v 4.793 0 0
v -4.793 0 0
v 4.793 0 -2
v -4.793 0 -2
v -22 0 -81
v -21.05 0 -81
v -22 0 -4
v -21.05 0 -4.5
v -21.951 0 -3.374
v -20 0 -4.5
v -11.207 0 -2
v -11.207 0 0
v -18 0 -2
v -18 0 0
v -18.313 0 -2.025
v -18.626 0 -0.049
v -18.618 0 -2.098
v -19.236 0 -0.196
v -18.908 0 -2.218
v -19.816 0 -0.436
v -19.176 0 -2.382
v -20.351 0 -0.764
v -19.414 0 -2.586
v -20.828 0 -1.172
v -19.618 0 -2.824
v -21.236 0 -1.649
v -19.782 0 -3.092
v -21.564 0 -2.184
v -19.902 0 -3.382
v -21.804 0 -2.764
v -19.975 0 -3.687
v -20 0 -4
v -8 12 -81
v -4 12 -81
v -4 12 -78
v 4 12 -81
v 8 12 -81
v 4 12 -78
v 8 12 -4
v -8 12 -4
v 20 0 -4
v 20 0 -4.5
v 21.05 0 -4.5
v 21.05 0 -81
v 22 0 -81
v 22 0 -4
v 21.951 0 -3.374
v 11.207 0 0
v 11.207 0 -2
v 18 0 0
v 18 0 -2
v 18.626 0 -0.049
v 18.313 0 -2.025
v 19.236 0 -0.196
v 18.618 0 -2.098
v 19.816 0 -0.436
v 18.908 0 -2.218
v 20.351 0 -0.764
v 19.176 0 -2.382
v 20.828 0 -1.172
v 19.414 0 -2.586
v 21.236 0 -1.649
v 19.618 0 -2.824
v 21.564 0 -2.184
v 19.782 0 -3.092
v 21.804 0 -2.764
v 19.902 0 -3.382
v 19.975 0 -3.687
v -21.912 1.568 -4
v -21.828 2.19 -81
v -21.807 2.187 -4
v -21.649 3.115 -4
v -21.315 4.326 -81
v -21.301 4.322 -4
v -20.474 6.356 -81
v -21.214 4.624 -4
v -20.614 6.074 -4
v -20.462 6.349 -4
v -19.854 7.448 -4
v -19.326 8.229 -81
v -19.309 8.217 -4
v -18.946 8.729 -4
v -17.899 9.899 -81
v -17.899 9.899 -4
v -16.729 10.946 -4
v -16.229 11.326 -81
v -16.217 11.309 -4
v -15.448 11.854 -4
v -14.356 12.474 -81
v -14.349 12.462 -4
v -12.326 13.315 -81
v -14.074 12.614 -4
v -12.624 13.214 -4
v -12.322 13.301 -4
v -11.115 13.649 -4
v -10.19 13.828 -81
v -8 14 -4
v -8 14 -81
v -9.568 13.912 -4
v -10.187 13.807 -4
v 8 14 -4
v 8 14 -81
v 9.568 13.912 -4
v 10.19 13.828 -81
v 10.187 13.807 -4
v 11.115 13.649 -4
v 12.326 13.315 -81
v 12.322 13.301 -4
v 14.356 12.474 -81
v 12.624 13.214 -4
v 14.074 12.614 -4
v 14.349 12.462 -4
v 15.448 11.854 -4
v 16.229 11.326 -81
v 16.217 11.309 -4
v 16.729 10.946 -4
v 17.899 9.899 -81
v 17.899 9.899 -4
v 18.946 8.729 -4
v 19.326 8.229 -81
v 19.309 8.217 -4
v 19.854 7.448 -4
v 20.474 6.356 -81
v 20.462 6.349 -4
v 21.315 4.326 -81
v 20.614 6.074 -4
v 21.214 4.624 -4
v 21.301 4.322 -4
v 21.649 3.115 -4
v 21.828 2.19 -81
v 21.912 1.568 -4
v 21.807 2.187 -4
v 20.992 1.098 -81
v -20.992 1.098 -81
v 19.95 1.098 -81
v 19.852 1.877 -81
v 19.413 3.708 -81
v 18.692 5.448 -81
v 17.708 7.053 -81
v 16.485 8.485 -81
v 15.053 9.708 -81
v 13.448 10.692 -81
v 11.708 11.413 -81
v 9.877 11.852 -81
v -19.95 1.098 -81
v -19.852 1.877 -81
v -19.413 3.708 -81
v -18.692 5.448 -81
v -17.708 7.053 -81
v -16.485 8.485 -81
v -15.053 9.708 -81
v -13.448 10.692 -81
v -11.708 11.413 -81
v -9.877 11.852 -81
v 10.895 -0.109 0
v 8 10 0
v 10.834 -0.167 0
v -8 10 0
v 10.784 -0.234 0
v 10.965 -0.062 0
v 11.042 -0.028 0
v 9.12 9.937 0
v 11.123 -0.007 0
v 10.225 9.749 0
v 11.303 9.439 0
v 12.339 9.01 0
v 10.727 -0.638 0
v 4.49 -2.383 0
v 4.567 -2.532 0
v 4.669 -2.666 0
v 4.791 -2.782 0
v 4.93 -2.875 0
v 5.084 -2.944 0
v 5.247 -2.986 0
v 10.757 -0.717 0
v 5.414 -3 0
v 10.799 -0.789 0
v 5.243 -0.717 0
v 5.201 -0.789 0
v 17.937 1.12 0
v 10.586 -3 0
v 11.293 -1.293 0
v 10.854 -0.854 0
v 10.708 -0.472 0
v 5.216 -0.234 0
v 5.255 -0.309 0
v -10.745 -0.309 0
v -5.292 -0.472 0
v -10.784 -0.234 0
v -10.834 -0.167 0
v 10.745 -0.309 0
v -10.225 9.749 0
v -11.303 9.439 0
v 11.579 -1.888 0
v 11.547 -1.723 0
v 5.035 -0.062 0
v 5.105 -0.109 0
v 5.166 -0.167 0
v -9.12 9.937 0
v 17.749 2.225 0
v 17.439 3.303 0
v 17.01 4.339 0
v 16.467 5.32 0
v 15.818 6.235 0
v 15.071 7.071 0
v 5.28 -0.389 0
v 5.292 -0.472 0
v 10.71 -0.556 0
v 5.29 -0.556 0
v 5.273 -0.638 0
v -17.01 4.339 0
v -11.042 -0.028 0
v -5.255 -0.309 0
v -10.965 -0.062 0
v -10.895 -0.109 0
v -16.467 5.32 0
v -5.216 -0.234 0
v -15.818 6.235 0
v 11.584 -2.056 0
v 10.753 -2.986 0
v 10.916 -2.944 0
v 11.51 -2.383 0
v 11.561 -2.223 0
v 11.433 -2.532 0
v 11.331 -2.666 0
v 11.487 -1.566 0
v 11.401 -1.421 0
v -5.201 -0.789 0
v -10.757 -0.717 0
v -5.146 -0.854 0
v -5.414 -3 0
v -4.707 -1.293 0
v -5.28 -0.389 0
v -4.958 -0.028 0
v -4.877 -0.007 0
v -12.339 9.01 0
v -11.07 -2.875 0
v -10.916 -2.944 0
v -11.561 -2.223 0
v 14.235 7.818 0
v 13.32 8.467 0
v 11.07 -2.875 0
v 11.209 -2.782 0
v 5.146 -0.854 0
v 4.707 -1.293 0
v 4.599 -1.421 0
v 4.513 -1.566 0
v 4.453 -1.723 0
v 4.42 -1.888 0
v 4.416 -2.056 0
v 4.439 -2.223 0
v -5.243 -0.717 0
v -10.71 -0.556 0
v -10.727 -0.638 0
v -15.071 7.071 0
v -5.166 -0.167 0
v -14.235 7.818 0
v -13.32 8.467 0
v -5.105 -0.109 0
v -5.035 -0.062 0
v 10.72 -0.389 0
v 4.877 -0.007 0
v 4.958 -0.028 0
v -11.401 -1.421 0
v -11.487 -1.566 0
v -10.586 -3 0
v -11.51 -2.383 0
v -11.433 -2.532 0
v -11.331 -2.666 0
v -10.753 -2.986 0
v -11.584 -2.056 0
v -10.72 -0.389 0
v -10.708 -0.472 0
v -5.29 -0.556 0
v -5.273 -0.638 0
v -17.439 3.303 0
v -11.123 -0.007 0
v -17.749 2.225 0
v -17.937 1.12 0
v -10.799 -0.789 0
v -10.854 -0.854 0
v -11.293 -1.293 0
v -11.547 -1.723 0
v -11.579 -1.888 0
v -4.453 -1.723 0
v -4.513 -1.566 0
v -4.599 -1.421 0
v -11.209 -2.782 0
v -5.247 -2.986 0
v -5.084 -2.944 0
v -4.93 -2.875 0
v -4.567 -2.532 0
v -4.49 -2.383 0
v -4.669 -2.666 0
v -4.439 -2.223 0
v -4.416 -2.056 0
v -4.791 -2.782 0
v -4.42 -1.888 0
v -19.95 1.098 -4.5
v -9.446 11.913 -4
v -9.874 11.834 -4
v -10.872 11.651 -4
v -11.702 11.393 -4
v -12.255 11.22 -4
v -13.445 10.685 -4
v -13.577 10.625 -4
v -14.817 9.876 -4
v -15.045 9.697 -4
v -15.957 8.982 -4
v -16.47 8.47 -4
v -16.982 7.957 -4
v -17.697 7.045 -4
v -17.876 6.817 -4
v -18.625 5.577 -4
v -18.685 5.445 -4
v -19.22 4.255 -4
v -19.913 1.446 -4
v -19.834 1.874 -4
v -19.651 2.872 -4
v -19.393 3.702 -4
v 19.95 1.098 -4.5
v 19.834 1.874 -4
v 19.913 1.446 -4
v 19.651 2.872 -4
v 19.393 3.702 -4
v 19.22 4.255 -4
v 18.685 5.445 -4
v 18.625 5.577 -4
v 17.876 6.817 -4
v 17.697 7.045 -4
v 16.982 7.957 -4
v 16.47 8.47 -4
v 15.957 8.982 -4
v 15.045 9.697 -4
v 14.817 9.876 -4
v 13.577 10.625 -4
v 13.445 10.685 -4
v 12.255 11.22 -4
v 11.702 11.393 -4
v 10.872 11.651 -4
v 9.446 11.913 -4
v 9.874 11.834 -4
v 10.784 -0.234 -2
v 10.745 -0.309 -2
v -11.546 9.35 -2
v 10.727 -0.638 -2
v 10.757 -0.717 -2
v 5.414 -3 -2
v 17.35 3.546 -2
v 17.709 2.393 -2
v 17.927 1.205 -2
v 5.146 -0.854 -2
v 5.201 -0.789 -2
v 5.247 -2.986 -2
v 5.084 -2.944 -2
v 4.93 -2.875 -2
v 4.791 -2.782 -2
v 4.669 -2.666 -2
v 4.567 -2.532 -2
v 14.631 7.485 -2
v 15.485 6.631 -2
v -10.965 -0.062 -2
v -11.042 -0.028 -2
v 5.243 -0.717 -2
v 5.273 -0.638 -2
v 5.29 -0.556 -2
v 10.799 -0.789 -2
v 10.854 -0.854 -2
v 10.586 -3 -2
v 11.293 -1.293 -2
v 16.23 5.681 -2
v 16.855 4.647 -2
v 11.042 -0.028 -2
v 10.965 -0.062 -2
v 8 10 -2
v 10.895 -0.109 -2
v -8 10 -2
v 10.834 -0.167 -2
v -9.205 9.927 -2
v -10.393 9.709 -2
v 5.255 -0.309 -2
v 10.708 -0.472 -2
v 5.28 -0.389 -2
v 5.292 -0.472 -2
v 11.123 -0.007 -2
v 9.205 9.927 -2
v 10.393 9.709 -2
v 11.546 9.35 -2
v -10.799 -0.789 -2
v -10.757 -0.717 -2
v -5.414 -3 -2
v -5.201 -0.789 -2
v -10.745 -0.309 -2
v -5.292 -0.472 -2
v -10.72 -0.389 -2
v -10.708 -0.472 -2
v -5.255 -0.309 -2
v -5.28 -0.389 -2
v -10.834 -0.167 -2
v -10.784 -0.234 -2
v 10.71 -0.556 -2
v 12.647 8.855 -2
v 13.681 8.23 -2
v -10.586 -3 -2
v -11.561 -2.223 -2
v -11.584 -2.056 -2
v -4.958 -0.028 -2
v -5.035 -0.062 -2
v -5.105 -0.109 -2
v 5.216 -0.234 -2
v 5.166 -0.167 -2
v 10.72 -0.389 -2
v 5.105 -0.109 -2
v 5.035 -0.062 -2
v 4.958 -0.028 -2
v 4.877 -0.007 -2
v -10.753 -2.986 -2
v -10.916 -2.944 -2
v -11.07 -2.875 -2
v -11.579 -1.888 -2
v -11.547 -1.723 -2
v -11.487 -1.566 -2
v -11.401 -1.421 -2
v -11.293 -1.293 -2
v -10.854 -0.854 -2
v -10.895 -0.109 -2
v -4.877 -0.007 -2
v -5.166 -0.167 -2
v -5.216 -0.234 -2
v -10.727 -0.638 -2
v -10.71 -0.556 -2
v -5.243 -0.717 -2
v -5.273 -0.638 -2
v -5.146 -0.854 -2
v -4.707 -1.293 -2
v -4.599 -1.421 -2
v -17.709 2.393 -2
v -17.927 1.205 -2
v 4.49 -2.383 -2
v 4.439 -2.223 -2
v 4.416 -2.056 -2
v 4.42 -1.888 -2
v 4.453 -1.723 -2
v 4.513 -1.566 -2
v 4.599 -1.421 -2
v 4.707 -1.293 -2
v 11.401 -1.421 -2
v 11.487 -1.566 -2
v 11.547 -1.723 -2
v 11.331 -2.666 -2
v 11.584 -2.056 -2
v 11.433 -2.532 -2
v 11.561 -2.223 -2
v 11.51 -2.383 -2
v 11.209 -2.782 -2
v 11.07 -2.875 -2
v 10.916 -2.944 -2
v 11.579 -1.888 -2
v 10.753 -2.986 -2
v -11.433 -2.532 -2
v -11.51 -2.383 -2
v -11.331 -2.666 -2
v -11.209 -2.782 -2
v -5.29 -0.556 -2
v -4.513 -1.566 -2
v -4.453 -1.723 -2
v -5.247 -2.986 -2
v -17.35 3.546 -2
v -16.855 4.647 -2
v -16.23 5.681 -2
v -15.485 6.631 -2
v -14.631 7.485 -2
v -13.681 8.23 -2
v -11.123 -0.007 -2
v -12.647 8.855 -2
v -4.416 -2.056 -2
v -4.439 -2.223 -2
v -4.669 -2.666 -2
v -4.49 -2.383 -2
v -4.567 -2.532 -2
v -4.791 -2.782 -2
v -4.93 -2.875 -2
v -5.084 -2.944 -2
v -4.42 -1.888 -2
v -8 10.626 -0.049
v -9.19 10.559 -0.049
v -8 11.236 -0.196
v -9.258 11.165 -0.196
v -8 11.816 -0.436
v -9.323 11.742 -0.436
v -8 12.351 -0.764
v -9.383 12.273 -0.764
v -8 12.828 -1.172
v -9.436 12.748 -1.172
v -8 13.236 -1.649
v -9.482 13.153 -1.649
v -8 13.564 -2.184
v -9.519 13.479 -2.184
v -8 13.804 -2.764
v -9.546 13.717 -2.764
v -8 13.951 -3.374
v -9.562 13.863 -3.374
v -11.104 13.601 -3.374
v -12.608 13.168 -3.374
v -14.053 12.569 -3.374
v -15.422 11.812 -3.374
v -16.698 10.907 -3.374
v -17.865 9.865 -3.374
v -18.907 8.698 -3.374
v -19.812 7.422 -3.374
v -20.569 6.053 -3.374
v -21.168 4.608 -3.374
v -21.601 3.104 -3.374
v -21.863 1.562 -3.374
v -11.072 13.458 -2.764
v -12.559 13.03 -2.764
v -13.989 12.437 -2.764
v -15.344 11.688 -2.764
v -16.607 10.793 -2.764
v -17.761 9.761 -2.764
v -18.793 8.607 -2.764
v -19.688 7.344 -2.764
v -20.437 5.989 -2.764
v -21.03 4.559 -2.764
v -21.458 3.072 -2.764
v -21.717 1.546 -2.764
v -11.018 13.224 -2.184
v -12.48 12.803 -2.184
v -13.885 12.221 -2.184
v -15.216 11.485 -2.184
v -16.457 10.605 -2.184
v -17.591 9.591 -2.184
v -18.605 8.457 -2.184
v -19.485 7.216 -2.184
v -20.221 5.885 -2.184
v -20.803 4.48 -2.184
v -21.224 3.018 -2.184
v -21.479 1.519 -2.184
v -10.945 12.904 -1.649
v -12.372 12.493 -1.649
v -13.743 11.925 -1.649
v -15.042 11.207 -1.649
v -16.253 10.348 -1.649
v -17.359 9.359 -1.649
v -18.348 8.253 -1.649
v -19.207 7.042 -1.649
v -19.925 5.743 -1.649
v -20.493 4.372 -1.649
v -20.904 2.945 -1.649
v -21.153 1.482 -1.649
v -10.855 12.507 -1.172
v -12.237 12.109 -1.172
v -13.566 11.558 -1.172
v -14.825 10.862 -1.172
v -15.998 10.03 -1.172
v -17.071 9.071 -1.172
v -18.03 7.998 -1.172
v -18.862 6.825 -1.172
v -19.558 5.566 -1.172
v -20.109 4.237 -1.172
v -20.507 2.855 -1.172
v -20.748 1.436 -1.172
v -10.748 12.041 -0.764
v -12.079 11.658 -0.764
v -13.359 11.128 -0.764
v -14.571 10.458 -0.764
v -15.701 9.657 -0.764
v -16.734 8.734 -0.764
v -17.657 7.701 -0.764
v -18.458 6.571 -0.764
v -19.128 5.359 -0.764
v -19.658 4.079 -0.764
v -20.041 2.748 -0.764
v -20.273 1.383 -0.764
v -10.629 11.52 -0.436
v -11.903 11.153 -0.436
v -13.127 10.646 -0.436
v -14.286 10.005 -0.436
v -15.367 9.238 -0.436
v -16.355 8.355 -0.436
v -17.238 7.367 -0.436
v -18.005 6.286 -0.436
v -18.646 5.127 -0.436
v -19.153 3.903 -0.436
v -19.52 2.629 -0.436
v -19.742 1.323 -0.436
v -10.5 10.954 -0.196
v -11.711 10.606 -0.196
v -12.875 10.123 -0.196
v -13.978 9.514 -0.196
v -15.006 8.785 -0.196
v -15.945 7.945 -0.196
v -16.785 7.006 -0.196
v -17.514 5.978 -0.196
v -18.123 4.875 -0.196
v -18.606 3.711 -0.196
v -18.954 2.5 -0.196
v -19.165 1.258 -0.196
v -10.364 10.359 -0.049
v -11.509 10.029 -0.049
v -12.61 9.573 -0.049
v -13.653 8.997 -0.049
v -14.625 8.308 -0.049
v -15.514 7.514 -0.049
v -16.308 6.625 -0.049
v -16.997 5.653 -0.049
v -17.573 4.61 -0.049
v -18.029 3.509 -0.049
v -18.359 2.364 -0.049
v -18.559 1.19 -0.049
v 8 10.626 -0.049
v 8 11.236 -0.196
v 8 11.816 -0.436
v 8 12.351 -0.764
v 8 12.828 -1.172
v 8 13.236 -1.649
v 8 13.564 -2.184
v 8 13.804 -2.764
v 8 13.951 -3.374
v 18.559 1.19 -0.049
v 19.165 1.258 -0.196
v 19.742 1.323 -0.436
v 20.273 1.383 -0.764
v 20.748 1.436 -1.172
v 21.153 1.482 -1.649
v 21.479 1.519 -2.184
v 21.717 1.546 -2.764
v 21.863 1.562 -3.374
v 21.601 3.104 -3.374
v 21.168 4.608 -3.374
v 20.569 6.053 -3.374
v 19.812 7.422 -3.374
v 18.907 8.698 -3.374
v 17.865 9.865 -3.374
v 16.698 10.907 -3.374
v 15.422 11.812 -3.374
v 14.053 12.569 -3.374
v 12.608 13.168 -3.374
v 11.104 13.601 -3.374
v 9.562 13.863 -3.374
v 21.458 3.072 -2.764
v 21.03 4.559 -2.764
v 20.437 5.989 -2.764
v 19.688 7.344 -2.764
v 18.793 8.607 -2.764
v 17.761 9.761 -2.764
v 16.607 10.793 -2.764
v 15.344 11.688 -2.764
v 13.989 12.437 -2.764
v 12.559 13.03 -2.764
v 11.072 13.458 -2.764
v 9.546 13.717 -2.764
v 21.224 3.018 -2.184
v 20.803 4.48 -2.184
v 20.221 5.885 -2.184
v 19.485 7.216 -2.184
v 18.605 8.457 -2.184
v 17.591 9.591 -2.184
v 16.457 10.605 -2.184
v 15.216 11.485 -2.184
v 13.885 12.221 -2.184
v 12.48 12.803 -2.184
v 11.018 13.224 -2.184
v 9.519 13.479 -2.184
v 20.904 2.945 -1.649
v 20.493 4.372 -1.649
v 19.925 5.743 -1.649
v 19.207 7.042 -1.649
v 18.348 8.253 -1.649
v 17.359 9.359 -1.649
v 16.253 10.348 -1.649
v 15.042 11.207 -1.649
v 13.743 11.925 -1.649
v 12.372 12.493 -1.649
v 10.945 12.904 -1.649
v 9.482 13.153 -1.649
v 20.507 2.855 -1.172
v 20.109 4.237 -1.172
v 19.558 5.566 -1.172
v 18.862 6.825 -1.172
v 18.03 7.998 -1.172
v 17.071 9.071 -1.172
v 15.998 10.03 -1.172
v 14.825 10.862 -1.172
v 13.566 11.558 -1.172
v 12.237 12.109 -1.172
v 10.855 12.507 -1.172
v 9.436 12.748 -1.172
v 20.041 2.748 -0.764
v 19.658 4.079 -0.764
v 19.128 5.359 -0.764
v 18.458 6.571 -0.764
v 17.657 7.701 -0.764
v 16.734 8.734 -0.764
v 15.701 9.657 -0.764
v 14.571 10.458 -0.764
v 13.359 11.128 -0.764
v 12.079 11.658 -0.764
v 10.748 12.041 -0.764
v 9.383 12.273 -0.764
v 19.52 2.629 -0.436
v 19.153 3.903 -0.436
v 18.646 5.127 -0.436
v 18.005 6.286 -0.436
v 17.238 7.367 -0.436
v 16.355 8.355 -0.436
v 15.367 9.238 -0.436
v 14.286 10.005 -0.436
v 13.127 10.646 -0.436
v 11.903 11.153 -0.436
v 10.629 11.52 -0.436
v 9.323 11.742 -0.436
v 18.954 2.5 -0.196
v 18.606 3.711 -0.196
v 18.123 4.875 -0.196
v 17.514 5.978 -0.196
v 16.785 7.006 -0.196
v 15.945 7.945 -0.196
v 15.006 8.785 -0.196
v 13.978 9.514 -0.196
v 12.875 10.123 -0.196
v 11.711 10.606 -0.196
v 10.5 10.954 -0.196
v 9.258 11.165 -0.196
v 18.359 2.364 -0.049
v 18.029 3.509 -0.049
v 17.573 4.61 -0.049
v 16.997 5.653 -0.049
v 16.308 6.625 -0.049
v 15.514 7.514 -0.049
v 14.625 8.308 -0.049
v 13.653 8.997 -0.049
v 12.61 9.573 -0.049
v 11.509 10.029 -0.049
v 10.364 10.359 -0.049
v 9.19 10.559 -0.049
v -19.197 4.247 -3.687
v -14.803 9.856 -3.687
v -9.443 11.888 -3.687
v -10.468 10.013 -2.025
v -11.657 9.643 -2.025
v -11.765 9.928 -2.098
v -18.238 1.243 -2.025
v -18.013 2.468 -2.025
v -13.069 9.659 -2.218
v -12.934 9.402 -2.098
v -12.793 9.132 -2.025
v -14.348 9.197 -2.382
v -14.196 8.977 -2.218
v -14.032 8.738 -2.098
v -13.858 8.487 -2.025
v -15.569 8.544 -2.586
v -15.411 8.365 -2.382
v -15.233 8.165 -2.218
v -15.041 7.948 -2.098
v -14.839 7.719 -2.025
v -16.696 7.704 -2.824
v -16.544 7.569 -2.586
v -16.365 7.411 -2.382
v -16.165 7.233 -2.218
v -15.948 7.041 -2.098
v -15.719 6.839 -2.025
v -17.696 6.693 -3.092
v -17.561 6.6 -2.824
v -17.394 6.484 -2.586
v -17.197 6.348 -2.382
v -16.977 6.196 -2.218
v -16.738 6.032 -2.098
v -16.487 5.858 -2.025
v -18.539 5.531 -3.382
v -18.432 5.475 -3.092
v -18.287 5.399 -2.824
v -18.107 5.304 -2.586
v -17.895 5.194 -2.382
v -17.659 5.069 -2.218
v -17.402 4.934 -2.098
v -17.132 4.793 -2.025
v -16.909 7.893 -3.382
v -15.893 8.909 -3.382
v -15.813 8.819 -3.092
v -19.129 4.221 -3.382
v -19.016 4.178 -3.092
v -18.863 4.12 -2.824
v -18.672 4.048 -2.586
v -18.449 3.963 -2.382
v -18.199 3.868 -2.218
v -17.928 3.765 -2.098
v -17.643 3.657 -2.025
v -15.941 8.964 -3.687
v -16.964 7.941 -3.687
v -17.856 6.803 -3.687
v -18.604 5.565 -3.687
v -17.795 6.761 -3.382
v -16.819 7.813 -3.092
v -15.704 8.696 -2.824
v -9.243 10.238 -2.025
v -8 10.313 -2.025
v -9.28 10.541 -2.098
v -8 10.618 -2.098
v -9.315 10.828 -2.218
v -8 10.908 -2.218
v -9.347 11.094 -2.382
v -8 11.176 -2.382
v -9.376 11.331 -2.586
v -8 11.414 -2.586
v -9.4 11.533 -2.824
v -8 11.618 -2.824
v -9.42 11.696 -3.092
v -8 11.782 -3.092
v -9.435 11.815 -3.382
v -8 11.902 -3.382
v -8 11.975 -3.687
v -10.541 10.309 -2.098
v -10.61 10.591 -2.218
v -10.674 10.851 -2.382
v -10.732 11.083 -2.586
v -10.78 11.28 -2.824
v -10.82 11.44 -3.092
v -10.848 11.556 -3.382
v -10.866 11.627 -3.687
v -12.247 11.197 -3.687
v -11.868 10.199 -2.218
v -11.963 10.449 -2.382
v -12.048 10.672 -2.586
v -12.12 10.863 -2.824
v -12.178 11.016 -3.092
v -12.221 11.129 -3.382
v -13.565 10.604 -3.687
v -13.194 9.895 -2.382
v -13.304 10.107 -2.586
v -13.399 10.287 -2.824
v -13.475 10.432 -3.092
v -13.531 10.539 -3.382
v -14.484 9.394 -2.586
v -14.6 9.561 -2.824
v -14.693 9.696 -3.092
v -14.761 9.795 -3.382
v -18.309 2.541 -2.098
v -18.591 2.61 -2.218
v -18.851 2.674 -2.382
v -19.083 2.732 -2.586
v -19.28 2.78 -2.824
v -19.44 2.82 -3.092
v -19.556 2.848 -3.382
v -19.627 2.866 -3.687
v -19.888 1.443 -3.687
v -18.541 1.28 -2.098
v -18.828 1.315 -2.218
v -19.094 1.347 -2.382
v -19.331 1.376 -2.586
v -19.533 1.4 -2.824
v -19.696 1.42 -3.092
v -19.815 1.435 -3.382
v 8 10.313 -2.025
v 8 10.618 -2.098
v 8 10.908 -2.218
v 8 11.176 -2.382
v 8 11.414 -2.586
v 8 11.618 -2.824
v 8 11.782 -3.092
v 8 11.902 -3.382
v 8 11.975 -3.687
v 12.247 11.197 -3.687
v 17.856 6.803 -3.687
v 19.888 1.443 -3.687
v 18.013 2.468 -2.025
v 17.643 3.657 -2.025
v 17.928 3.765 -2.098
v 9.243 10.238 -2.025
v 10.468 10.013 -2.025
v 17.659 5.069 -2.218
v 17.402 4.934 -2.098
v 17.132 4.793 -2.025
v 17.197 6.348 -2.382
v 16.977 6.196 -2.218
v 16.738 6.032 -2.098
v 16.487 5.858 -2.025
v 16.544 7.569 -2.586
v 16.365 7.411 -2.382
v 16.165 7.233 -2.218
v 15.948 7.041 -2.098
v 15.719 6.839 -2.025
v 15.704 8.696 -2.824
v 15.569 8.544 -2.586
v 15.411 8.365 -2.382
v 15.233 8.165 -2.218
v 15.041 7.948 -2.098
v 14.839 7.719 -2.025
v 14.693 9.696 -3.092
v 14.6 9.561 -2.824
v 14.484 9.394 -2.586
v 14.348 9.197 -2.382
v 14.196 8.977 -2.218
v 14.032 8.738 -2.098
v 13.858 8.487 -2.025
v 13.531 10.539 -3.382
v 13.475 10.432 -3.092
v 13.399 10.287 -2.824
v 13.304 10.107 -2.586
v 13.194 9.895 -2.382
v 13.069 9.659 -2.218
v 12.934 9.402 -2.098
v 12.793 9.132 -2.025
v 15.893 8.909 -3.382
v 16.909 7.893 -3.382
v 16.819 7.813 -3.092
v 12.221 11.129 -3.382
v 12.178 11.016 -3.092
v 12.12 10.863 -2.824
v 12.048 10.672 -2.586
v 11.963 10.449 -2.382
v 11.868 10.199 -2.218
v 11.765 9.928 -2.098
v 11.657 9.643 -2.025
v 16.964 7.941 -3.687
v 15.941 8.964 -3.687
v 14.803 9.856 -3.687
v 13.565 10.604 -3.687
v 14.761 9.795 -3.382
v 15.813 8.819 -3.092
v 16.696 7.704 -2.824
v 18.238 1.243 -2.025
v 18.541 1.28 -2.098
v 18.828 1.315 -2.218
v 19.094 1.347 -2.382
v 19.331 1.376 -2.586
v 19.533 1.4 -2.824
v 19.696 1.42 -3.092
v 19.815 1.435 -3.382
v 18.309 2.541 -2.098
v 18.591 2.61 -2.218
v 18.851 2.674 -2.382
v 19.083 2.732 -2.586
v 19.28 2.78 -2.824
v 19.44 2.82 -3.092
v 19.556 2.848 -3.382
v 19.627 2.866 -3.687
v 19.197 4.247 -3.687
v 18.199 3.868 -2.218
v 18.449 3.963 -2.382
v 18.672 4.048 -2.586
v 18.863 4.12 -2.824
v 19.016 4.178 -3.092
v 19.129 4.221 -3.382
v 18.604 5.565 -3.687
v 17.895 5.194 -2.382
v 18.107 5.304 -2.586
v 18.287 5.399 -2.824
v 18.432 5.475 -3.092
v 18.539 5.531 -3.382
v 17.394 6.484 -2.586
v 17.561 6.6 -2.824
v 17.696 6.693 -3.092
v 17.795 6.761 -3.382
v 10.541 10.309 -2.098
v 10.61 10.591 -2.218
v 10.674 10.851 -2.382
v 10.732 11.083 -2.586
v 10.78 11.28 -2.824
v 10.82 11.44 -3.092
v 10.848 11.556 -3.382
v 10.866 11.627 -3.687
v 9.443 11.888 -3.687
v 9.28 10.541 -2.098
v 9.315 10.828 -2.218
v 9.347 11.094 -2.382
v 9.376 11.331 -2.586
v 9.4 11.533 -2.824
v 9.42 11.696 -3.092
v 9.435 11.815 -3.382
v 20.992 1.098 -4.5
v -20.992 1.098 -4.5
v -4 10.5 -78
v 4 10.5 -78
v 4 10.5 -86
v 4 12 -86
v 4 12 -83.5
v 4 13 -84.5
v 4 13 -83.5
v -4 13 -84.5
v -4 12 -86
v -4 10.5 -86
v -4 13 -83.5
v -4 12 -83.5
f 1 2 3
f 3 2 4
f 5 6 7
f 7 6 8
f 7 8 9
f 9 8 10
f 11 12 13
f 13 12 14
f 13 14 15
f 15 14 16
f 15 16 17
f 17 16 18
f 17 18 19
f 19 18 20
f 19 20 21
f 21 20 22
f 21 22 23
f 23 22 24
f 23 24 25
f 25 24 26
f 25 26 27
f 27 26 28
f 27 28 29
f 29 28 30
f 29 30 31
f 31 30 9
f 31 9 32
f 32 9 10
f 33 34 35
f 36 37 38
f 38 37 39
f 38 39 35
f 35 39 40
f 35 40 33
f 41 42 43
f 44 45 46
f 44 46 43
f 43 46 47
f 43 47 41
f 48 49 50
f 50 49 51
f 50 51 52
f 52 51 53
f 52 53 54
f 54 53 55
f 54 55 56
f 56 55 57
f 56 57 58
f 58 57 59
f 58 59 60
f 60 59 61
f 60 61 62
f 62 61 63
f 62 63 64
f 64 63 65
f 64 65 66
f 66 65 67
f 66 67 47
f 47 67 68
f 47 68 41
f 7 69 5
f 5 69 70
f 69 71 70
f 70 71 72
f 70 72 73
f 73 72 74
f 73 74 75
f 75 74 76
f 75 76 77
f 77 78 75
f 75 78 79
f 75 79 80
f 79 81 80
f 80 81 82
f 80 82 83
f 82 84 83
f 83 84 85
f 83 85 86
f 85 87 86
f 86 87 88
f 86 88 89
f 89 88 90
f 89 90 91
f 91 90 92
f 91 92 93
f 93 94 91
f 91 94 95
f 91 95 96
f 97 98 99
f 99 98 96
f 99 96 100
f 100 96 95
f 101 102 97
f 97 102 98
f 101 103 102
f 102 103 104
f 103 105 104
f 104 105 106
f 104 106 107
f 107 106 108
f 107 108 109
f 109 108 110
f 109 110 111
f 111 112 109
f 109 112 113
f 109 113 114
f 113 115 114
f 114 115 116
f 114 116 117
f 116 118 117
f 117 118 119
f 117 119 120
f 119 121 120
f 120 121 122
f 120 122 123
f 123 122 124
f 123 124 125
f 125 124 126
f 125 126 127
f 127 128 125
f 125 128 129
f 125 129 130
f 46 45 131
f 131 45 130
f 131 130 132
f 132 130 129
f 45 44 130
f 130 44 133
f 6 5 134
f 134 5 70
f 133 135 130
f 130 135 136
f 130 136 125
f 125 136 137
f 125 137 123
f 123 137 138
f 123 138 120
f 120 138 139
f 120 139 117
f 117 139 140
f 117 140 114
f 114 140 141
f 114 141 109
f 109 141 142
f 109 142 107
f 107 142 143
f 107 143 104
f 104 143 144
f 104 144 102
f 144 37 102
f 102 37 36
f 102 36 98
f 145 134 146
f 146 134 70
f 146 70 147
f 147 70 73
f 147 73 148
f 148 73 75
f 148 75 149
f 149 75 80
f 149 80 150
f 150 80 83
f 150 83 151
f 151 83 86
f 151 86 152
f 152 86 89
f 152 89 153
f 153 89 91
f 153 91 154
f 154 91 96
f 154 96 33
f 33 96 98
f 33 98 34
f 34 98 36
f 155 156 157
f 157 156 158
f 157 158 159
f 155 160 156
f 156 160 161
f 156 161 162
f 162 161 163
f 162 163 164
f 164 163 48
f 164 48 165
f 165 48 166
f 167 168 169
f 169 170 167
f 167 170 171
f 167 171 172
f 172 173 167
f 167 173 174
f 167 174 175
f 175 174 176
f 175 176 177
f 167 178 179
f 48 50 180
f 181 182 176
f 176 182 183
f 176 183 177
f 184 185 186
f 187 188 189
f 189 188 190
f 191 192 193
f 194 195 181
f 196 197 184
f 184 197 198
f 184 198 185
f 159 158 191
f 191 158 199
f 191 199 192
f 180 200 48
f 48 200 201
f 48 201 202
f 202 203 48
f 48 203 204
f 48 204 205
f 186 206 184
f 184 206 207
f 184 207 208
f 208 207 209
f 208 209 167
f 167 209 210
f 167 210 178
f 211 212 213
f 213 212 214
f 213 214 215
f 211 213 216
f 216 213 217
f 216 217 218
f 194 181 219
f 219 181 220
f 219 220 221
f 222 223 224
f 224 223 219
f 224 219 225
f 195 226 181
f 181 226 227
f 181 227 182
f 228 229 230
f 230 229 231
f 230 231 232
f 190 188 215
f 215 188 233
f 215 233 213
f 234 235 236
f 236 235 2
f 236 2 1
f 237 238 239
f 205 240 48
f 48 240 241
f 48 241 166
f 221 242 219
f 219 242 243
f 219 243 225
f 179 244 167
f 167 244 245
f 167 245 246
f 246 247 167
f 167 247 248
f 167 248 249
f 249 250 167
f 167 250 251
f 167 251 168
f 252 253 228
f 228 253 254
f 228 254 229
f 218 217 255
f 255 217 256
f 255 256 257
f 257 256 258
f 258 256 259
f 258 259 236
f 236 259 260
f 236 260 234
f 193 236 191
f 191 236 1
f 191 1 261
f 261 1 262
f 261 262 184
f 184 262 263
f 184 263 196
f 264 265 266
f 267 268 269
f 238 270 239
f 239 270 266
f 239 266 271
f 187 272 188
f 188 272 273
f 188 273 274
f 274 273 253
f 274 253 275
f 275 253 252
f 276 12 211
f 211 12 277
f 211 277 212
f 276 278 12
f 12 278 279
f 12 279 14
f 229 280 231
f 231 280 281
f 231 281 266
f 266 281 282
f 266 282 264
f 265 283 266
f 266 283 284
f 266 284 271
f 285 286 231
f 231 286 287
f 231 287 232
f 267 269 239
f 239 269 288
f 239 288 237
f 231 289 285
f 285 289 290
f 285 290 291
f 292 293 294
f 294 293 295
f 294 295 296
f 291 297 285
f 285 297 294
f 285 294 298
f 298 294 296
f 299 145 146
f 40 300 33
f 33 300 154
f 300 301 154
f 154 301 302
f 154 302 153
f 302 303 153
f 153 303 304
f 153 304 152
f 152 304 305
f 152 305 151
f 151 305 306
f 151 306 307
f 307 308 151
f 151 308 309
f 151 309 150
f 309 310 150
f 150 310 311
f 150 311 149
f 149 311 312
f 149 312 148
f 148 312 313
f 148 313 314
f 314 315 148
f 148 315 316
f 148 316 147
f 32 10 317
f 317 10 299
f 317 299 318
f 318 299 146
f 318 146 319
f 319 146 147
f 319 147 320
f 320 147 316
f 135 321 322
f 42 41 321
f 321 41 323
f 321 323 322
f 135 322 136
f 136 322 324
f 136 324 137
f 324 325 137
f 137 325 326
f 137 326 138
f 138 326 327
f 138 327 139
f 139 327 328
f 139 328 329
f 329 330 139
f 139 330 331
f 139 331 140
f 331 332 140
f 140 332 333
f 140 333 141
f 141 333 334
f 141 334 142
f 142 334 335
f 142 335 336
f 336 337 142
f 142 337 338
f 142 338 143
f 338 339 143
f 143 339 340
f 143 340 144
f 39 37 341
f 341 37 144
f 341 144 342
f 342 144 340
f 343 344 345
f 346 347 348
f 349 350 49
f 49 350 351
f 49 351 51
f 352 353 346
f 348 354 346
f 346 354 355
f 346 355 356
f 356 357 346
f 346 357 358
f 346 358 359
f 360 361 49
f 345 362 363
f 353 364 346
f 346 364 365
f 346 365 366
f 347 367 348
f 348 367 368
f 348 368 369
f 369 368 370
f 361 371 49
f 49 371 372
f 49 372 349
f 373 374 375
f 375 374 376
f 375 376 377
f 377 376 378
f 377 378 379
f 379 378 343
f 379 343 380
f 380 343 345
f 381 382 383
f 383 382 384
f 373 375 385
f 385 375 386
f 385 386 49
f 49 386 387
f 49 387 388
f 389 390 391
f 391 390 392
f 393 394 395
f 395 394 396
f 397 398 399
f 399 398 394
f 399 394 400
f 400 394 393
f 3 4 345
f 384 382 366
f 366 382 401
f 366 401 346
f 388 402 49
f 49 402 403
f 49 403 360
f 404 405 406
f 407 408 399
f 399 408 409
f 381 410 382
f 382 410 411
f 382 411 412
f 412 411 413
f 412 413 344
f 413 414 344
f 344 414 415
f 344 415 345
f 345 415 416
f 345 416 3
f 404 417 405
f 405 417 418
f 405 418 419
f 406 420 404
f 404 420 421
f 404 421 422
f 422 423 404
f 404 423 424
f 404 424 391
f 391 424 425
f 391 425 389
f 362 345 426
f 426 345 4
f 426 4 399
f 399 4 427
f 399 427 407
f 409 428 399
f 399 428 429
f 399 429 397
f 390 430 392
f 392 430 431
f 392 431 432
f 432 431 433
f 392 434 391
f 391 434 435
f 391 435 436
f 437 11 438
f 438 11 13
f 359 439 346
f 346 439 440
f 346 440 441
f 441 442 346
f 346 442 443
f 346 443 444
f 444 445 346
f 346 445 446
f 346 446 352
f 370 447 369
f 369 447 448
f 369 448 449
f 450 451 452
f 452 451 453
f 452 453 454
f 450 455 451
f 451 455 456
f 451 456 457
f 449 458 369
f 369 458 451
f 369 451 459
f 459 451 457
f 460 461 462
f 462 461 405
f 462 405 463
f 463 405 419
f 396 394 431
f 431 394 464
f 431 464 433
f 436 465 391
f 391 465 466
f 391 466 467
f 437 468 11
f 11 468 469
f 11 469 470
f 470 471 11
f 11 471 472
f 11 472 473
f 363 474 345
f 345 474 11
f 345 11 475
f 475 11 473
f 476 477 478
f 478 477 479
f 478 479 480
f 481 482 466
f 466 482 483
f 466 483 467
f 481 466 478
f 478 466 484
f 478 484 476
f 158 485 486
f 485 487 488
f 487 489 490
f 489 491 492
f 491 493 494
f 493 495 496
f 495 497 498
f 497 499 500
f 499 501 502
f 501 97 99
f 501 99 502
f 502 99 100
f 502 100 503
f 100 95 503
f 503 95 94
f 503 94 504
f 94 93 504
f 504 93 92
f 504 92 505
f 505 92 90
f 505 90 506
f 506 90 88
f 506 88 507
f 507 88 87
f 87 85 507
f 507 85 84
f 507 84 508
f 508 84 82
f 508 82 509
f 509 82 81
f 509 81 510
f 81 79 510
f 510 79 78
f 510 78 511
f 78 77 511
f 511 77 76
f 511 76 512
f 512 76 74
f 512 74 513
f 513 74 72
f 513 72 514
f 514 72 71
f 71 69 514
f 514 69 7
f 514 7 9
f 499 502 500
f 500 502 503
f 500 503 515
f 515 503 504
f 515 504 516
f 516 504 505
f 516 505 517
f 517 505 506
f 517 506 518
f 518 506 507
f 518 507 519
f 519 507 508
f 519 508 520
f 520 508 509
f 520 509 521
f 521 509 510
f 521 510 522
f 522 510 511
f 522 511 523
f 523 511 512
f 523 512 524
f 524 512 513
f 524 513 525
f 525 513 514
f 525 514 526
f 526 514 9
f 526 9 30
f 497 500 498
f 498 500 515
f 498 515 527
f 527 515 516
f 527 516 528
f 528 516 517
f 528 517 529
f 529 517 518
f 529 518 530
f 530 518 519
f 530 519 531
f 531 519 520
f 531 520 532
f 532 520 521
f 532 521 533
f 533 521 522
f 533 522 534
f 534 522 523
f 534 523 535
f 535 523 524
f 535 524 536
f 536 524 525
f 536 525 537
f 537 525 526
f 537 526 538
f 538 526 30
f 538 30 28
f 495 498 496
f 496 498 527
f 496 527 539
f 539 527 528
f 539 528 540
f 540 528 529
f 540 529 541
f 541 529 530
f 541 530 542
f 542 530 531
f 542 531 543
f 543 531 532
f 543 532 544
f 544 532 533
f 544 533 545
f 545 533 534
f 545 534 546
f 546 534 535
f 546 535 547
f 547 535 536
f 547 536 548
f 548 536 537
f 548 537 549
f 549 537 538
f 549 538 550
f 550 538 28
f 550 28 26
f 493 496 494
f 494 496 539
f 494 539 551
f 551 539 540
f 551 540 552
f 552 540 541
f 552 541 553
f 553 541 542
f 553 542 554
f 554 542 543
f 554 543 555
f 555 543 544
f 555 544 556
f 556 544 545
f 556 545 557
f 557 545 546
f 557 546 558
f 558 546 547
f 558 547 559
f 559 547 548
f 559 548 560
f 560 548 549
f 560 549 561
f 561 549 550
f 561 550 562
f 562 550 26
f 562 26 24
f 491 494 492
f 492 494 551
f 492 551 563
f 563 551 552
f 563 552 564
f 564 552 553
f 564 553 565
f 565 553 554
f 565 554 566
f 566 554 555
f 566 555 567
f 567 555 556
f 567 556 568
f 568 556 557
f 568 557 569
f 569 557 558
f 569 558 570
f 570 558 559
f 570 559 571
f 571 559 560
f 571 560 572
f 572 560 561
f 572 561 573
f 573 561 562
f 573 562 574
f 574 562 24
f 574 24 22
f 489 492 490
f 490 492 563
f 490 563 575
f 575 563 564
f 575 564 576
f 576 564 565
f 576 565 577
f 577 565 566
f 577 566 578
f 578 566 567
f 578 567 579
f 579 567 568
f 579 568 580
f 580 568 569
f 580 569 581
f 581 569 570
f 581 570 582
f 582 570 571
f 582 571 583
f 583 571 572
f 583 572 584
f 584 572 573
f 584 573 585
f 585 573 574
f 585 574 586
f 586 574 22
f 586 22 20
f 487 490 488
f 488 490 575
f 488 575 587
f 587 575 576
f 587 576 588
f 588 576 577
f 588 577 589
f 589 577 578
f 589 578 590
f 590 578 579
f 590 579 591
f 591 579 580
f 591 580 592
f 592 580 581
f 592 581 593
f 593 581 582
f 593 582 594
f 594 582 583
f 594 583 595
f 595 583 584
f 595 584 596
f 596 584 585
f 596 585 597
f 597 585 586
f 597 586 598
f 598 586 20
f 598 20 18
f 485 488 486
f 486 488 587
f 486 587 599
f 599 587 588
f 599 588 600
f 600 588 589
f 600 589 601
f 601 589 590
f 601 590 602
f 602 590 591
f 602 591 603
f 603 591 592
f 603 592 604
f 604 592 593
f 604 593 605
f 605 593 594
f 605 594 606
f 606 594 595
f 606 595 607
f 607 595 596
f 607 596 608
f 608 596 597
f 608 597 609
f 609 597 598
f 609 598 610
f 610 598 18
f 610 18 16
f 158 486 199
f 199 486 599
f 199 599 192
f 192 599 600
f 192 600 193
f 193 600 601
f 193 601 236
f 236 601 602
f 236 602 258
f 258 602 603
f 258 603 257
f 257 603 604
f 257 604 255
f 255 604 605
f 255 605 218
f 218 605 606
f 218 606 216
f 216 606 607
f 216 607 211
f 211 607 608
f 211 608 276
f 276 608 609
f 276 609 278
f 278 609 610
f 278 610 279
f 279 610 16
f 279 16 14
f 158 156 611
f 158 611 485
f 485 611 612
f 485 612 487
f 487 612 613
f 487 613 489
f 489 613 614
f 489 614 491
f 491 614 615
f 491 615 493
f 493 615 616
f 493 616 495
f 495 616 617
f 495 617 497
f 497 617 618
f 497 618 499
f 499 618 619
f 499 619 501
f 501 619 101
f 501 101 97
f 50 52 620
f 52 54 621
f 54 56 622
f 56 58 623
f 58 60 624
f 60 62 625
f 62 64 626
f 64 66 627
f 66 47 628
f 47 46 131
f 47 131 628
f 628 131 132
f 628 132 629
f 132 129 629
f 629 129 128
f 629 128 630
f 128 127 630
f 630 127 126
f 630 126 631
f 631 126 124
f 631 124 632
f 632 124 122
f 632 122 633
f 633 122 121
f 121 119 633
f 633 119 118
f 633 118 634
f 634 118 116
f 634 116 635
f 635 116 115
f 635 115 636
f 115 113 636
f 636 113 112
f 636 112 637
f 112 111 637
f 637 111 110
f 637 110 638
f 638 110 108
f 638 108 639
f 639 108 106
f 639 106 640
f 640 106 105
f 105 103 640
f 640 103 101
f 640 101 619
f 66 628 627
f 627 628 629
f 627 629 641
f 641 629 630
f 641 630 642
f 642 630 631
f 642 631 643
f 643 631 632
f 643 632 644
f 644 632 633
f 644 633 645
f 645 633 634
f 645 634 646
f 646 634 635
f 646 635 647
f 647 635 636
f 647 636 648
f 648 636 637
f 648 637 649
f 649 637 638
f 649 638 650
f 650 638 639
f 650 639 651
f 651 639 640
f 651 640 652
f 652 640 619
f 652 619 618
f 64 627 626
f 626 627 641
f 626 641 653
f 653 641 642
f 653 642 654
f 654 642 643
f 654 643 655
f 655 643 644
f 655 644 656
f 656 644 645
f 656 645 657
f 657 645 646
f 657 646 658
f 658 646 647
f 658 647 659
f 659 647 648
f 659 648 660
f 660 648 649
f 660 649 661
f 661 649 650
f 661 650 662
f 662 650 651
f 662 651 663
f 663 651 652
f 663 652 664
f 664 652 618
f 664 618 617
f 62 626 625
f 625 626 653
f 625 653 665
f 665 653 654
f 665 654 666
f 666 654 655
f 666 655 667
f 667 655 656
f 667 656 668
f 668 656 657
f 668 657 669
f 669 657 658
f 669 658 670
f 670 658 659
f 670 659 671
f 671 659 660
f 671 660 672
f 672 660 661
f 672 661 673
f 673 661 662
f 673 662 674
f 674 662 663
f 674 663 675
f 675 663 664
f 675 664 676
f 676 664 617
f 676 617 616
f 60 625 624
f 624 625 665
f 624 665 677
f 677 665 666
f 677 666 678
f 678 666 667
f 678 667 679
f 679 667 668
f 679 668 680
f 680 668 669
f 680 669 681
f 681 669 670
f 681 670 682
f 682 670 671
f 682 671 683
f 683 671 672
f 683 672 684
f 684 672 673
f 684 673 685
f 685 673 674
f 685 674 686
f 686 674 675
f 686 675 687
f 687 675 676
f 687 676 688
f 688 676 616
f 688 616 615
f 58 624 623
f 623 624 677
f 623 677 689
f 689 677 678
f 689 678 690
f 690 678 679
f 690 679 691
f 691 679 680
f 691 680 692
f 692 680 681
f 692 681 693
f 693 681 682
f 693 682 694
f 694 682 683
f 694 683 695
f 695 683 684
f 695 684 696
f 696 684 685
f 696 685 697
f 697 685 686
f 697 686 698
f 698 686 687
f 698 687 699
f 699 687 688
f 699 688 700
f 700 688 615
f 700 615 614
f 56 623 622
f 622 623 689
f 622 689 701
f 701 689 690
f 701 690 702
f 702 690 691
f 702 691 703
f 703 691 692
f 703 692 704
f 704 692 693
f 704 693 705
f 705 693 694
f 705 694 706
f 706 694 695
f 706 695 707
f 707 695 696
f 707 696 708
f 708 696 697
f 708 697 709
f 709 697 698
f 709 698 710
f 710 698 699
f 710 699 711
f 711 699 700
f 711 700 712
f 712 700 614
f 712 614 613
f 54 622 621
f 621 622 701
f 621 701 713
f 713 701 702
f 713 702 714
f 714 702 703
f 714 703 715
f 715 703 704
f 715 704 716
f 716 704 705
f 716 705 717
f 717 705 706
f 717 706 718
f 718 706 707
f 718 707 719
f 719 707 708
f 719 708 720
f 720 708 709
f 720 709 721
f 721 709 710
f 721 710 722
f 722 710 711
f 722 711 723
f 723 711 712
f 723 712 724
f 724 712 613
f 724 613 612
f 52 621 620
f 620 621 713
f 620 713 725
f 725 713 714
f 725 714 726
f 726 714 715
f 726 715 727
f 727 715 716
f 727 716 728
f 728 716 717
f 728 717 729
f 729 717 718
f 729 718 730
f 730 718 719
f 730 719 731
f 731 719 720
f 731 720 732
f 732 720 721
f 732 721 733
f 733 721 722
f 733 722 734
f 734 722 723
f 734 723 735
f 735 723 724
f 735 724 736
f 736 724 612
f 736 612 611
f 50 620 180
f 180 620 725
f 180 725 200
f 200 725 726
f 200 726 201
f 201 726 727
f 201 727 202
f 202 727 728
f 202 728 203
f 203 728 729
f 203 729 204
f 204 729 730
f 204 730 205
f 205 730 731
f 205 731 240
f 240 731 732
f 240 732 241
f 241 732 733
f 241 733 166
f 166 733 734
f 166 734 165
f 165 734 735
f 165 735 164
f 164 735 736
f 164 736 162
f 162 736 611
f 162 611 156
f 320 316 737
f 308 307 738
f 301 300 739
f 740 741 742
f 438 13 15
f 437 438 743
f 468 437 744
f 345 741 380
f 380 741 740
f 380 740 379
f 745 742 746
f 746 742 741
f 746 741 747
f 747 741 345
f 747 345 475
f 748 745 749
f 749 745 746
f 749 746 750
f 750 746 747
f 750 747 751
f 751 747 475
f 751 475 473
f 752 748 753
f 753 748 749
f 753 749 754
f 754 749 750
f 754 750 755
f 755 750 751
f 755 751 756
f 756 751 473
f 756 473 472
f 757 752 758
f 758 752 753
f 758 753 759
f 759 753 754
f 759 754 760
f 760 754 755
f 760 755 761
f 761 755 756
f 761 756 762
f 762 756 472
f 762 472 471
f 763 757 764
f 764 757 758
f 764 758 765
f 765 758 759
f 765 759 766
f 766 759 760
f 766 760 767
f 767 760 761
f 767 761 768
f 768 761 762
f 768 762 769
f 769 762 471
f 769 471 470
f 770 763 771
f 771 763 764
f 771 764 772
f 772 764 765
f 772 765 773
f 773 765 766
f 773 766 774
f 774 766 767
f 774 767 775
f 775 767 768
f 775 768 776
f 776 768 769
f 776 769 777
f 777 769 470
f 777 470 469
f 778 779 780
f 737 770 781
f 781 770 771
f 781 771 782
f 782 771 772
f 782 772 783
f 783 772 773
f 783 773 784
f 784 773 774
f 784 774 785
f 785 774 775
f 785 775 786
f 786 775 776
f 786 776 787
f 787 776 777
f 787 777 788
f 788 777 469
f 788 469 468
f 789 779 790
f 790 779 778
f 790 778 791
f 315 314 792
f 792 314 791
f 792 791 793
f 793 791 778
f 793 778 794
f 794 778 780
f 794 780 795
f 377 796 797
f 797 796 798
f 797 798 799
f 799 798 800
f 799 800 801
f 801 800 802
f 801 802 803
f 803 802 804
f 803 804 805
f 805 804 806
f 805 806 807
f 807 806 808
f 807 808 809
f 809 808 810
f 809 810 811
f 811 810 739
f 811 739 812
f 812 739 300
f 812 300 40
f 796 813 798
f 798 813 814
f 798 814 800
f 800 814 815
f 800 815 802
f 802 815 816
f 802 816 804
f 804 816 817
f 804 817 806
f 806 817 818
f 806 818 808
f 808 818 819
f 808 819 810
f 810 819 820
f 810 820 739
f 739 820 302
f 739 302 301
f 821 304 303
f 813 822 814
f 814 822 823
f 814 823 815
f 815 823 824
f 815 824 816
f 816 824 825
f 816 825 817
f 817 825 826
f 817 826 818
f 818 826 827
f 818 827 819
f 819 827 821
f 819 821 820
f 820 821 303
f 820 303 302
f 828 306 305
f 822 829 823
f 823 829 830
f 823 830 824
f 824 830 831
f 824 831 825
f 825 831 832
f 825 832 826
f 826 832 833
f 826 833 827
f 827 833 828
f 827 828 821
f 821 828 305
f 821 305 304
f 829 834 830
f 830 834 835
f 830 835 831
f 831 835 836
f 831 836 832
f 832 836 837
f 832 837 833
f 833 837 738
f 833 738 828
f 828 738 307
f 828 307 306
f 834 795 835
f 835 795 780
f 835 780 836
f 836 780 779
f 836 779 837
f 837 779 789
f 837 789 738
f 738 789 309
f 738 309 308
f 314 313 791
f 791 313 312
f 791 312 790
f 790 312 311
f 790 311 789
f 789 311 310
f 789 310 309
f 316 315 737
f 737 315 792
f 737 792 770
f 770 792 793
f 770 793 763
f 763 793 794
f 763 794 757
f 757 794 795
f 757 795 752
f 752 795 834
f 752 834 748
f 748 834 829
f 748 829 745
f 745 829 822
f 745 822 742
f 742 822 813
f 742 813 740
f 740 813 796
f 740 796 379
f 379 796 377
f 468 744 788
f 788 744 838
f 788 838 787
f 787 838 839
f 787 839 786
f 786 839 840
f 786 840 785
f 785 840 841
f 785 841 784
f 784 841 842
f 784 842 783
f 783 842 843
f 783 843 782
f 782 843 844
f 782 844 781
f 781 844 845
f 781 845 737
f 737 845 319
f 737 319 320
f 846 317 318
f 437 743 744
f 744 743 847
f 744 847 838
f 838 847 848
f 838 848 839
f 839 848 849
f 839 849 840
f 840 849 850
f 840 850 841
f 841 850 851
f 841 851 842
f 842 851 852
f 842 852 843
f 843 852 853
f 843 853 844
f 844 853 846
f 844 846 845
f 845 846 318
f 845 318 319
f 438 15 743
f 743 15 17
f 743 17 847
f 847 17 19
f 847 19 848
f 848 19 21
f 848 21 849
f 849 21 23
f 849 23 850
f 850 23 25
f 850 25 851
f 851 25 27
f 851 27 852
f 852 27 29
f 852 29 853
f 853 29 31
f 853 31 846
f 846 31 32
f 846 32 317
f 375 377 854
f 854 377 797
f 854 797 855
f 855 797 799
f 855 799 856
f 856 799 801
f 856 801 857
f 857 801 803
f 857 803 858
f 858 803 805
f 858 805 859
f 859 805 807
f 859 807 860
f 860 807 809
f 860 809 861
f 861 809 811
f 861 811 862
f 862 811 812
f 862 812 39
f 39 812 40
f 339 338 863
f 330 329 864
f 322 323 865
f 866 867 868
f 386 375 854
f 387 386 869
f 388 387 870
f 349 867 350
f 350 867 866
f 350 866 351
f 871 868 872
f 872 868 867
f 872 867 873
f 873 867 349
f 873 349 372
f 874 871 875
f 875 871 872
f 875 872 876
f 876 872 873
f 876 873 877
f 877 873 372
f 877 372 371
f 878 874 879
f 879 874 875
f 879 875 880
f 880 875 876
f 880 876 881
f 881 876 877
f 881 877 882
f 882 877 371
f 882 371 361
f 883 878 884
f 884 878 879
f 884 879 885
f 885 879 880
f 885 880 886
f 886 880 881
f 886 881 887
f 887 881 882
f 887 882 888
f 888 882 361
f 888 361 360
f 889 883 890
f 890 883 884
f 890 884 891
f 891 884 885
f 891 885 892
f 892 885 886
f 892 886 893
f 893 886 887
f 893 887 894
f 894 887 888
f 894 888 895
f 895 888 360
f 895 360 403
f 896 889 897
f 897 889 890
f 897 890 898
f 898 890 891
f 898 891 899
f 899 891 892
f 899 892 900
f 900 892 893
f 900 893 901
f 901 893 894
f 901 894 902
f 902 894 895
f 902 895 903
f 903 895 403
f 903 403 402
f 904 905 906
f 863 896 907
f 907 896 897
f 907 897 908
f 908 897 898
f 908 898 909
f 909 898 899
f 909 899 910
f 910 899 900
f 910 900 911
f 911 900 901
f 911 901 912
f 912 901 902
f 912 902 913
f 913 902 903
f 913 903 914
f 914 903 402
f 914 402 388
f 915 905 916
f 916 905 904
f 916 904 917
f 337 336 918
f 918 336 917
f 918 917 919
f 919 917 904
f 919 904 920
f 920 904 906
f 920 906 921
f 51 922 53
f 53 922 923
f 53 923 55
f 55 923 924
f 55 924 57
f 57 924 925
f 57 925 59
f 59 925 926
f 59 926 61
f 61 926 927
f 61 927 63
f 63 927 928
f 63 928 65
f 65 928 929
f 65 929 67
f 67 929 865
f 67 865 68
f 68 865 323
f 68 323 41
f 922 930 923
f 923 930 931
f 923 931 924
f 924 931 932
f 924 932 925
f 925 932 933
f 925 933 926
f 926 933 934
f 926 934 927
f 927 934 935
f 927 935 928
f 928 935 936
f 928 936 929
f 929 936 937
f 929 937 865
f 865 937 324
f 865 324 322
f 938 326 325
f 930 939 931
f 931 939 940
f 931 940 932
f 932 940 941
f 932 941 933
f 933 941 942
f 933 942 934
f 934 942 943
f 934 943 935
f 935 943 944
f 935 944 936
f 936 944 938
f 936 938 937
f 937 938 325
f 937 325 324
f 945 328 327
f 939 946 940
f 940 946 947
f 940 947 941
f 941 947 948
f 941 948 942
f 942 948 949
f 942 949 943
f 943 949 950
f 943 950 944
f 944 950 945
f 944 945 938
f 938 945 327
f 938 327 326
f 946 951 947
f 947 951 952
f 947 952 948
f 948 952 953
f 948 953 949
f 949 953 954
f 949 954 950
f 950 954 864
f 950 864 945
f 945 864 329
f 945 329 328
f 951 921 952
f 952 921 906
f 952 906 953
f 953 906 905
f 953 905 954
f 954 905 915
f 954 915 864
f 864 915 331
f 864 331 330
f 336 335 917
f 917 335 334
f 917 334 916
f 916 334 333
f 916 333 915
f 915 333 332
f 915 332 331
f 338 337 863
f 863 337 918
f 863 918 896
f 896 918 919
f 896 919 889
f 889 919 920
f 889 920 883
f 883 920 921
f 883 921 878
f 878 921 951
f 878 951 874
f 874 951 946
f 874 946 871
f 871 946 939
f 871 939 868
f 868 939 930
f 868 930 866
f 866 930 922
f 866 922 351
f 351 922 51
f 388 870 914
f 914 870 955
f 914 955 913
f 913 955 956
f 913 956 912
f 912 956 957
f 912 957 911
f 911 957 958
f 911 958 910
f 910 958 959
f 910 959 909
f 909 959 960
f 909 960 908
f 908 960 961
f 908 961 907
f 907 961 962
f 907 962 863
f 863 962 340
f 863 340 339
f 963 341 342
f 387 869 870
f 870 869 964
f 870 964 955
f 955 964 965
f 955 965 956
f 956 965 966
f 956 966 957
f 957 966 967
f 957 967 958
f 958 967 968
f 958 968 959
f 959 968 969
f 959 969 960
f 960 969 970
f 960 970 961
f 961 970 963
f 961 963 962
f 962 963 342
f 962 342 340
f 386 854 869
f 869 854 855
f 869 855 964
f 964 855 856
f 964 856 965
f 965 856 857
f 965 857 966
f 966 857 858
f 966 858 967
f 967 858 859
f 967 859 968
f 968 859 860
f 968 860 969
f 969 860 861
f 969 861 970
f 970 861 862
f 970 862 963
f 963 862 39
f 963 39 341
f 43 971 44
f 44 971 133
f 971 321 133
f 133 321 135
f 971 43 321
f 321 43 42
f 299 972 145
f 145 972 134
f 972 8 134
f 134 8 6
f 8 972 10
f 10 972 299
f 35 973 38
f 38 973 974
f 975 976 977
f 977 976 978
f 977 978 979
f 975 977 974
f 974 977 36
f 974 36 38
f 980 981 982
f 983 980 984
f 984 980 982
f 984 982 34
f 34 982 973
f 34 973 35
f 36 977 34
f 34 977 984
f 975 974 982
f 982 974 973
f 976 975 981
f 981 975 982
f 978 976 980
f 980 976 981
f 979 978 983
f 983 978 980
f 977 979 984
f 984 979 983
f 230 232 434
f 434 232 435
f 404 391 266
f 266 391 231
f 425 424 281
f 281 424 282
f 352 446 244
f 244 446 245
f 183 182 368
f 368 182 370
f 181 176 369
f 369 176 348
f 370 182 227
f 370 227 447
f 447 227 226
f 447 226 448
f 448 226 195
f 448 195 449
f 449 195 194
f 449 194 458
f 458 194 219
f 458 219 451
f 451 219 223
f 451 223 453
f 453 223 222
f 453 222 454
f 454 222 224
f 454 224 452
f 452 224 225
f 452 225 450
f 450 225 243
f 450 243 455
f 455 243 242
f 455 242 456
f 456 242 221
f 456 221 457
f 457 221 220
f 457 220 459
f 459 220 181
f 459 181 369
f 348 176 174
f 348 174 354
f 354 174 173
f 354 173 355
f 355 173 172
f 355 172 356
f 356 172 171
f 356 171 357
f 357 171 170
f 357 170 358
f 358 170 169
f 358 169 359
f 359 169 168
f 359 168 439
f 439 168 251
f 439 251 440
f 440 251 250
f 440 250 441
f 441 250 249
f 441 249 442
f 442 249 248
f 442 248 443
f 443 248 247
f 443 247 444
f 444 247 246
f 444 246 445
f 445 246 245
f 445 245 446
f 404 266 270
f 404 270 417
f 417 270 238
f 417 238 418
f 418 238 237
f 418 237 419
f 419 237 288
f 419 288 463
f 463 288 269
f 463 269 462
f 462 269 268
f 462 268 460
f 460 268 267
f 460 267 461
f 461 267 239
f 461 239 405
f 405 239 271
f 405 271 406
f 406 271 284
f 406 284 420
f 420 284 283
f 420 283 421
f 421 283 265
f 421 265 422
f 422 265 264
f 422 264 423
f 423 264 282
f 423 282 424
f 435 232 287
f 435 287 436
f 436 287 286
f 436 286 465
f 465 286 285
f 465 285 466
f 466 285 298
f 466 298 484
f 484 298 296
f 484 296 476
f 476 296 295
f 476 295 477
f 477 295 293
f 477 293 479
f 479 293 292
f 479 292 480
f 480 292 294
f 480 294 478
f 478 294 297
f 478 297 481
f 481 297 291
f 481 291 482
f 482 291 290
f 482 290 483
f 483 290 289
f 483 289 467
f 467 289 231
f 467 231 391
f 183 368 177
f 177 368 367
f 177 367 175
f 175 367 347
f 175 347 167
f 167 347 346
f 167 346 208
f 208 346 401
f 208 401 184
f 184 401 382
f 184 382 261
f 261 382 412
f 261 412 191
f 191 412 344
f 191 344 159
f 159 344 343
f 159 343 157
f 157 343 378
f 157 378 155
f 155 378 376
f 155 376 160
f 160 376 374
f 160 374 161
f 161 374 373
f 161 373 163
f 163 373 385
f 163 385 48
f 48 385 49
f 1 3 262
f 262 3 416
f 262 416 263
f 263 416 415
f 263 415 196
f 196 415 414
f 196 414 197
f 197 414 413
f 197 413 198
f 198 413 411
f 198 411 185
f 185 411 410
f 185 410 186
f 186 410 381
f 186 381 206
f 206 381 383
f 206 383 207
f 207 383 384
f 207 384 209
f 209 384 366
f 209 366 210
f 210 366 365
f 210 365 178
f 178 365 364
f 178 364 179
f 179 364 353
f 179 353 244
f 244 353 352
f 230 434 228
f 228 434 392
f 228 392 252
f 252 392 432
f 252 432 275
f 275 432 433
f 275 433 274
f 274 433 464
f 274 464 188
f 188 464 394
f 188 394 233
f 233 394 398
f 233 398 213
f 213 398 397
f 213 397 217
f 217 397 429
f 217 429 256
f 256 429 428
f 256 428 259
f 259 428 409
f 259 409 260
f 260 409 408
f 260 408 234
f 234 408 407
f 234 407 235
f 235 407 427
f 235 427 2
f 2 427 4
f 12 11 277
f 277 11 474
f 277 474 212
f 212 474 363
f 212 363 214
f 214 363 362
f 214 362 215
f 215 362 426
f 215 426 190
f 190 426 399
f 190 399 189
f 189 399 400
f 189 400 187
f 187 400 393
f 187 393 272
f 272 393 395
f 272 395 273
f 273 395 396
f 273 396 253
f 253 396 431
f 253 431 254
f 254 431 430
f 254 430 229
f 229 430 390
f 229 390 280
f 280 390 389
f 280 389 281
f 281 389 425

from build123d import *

# Parameters (mm, degrees)
EXTRUDE_1_DEPTH     = 81
SHELL_1_T           = -2
FILLET_1_R          = 4
FILLET_2_R          = 2
CUT_EXTRUDE_START   = -76.5
CUT_EXTRUDE_1_DEPTH = 76.5
EXTRUDE_2_DEPTH     = 4
EXTRUDE_3_DEPTH     = 2
FILLET_3_R          = 1
FILLET_4_R          = 0.5


with BuildPart() as part:
    # 草图1 → 凸台-拉伸1 (new body)
    with BuildSketch(Plane.XY):
        with BuildLine():
            Line((0, 0), (8, 0))
            Line((8, 0), (22, 0))
            ThreePointArc((22, 0), (17.899494937, 9.899494937), (8, 14))
            Line((8, 14), (-8, 14))
            ThreePointArc((-8, 14), (-17.899494937, 9.899494937), (-22, 0))
            Line((-22, 0), (-8, 0))
            Line((-8, 0), (0, 0))
        make_face()
    extrude(amount=-EXTRUDE_1_DEPTH)

    # 抽壳1
    shell_1_openings = [part.faces().sort_by_distance(p)[0] for p in [
        (0, 6.387452756, -81),
        (0, 0, -40.5),
    ]]
    offset(amount=SHELL_1_T, openings=shell_1_openings, kind=Kind.INTERSECTION)

    # 圆角1
    fillet_1_edges = [part.edges().sort_by_distance(p)[0] for p in [
        (-17.899494937, 9.899494937, 0),
        (0, 14, 0),
        (17.899494937, 9.899494937, 0),
    ]]
    fillet(fillet_1_edges, radius=FILLET_1_R)

    # 圆角2
    fillet_2_edges = [part.edges().sort_by_distance(p)[0] for p in [
        (16.485281374, 8.485281374, -2),
        (0, 12, -2),
        (-16.485281374, 8.485281374, -2),
    ]]
    fillet(fillet_2_edges, radius=FILLET_2_R)

    # 草图2 → 切除-拉伸1 (cut)
    with BuildSketch(Plane(origin=(0, 0, -81), x_dir=(-1, 0, 0), z_dir=(0, 0, -1)).offset(CUT_EXTRUDE_START)):
        with BuildLine():
            Line((-20, 0), (-21.05, 0))
            Line((-21.05, 0), (-20.992430448, 1.098492488))
            Line((-20.992430448, 1.098492488), (-19.949615653, 1.098492488))
            ThreePointArc((-19.949615653, 1.098492488), (-19.987397295, 0.549823683), (-20, 0))
        make_face()
        with BuildLine():
            Line((20, 0), (21.05, 0))
            Line((21.05, 0), (20.992430448, 1.098492488))
            Line((20.992430448, 1.098492488), (19.949615653, 1.098492488))
            ThreePointArc((19.949615653, 1.098492488), (19.987397295, 0.549823683), (20, 0))
        make_face()
    extrude(amount=CUT_EXTRUDE_1_DEPTH, mode=Mode.SUBTRACT)

    # 草图3 → 凸台-拉伸2 (add, symmetric)
    with BuildSketch(Plane(origin=(0, 0, 0), x_dir=(0, 0, -1), z_dir=(1, 0, 0))):
        Polygon((81, 12), (81, 13), (78, 13), (78, 10.5), (81, 10.5), (86, 10.5), (86, 12), (84.5, 13), (83.5, 13), (83.5, 12), align=None)
    extrude(amount=EXTRUDE_2_DEPTH, both=True)

    # 草图4 → 凸台-拉伸3 (add)
    with BuildSketch(Plane.XY):
        Polygon((-8, 0), (-6, 0), (-3, -3), (-6, -3), (-10, -3), (-13, -3), (-10, 0), align=None)
        Polygon((3, -3), (6, 0), (8, 0), (10, 0), (13, -3), (10, -3), (6, -3), align=None)
    extrude(amount=-EXTRUDE_3_DEPTH)

    # 圆角3
    fillet_3_edges = [part.edges().sort_by_distance(p)[0] for p in [
        (-3, -3, -1),
        (-13, -3, -1),
        (3, -3, -1),
        (13, -3, -1),
    ]]
    fillet(fillet_3_edges, radius=FILLET_3_R)

    # 圆角4
    fillet_4_edges = [part.edges().sort_by_distance(p)[0] for p in [
        (-10, 0, -1),
        (-6, 0, -1),
        (6, 0, -1),
        (10, 0, -1),
    ]]
    fillet(fillet_4_edges, radius=FILLET_4_R)


solid = part.part
